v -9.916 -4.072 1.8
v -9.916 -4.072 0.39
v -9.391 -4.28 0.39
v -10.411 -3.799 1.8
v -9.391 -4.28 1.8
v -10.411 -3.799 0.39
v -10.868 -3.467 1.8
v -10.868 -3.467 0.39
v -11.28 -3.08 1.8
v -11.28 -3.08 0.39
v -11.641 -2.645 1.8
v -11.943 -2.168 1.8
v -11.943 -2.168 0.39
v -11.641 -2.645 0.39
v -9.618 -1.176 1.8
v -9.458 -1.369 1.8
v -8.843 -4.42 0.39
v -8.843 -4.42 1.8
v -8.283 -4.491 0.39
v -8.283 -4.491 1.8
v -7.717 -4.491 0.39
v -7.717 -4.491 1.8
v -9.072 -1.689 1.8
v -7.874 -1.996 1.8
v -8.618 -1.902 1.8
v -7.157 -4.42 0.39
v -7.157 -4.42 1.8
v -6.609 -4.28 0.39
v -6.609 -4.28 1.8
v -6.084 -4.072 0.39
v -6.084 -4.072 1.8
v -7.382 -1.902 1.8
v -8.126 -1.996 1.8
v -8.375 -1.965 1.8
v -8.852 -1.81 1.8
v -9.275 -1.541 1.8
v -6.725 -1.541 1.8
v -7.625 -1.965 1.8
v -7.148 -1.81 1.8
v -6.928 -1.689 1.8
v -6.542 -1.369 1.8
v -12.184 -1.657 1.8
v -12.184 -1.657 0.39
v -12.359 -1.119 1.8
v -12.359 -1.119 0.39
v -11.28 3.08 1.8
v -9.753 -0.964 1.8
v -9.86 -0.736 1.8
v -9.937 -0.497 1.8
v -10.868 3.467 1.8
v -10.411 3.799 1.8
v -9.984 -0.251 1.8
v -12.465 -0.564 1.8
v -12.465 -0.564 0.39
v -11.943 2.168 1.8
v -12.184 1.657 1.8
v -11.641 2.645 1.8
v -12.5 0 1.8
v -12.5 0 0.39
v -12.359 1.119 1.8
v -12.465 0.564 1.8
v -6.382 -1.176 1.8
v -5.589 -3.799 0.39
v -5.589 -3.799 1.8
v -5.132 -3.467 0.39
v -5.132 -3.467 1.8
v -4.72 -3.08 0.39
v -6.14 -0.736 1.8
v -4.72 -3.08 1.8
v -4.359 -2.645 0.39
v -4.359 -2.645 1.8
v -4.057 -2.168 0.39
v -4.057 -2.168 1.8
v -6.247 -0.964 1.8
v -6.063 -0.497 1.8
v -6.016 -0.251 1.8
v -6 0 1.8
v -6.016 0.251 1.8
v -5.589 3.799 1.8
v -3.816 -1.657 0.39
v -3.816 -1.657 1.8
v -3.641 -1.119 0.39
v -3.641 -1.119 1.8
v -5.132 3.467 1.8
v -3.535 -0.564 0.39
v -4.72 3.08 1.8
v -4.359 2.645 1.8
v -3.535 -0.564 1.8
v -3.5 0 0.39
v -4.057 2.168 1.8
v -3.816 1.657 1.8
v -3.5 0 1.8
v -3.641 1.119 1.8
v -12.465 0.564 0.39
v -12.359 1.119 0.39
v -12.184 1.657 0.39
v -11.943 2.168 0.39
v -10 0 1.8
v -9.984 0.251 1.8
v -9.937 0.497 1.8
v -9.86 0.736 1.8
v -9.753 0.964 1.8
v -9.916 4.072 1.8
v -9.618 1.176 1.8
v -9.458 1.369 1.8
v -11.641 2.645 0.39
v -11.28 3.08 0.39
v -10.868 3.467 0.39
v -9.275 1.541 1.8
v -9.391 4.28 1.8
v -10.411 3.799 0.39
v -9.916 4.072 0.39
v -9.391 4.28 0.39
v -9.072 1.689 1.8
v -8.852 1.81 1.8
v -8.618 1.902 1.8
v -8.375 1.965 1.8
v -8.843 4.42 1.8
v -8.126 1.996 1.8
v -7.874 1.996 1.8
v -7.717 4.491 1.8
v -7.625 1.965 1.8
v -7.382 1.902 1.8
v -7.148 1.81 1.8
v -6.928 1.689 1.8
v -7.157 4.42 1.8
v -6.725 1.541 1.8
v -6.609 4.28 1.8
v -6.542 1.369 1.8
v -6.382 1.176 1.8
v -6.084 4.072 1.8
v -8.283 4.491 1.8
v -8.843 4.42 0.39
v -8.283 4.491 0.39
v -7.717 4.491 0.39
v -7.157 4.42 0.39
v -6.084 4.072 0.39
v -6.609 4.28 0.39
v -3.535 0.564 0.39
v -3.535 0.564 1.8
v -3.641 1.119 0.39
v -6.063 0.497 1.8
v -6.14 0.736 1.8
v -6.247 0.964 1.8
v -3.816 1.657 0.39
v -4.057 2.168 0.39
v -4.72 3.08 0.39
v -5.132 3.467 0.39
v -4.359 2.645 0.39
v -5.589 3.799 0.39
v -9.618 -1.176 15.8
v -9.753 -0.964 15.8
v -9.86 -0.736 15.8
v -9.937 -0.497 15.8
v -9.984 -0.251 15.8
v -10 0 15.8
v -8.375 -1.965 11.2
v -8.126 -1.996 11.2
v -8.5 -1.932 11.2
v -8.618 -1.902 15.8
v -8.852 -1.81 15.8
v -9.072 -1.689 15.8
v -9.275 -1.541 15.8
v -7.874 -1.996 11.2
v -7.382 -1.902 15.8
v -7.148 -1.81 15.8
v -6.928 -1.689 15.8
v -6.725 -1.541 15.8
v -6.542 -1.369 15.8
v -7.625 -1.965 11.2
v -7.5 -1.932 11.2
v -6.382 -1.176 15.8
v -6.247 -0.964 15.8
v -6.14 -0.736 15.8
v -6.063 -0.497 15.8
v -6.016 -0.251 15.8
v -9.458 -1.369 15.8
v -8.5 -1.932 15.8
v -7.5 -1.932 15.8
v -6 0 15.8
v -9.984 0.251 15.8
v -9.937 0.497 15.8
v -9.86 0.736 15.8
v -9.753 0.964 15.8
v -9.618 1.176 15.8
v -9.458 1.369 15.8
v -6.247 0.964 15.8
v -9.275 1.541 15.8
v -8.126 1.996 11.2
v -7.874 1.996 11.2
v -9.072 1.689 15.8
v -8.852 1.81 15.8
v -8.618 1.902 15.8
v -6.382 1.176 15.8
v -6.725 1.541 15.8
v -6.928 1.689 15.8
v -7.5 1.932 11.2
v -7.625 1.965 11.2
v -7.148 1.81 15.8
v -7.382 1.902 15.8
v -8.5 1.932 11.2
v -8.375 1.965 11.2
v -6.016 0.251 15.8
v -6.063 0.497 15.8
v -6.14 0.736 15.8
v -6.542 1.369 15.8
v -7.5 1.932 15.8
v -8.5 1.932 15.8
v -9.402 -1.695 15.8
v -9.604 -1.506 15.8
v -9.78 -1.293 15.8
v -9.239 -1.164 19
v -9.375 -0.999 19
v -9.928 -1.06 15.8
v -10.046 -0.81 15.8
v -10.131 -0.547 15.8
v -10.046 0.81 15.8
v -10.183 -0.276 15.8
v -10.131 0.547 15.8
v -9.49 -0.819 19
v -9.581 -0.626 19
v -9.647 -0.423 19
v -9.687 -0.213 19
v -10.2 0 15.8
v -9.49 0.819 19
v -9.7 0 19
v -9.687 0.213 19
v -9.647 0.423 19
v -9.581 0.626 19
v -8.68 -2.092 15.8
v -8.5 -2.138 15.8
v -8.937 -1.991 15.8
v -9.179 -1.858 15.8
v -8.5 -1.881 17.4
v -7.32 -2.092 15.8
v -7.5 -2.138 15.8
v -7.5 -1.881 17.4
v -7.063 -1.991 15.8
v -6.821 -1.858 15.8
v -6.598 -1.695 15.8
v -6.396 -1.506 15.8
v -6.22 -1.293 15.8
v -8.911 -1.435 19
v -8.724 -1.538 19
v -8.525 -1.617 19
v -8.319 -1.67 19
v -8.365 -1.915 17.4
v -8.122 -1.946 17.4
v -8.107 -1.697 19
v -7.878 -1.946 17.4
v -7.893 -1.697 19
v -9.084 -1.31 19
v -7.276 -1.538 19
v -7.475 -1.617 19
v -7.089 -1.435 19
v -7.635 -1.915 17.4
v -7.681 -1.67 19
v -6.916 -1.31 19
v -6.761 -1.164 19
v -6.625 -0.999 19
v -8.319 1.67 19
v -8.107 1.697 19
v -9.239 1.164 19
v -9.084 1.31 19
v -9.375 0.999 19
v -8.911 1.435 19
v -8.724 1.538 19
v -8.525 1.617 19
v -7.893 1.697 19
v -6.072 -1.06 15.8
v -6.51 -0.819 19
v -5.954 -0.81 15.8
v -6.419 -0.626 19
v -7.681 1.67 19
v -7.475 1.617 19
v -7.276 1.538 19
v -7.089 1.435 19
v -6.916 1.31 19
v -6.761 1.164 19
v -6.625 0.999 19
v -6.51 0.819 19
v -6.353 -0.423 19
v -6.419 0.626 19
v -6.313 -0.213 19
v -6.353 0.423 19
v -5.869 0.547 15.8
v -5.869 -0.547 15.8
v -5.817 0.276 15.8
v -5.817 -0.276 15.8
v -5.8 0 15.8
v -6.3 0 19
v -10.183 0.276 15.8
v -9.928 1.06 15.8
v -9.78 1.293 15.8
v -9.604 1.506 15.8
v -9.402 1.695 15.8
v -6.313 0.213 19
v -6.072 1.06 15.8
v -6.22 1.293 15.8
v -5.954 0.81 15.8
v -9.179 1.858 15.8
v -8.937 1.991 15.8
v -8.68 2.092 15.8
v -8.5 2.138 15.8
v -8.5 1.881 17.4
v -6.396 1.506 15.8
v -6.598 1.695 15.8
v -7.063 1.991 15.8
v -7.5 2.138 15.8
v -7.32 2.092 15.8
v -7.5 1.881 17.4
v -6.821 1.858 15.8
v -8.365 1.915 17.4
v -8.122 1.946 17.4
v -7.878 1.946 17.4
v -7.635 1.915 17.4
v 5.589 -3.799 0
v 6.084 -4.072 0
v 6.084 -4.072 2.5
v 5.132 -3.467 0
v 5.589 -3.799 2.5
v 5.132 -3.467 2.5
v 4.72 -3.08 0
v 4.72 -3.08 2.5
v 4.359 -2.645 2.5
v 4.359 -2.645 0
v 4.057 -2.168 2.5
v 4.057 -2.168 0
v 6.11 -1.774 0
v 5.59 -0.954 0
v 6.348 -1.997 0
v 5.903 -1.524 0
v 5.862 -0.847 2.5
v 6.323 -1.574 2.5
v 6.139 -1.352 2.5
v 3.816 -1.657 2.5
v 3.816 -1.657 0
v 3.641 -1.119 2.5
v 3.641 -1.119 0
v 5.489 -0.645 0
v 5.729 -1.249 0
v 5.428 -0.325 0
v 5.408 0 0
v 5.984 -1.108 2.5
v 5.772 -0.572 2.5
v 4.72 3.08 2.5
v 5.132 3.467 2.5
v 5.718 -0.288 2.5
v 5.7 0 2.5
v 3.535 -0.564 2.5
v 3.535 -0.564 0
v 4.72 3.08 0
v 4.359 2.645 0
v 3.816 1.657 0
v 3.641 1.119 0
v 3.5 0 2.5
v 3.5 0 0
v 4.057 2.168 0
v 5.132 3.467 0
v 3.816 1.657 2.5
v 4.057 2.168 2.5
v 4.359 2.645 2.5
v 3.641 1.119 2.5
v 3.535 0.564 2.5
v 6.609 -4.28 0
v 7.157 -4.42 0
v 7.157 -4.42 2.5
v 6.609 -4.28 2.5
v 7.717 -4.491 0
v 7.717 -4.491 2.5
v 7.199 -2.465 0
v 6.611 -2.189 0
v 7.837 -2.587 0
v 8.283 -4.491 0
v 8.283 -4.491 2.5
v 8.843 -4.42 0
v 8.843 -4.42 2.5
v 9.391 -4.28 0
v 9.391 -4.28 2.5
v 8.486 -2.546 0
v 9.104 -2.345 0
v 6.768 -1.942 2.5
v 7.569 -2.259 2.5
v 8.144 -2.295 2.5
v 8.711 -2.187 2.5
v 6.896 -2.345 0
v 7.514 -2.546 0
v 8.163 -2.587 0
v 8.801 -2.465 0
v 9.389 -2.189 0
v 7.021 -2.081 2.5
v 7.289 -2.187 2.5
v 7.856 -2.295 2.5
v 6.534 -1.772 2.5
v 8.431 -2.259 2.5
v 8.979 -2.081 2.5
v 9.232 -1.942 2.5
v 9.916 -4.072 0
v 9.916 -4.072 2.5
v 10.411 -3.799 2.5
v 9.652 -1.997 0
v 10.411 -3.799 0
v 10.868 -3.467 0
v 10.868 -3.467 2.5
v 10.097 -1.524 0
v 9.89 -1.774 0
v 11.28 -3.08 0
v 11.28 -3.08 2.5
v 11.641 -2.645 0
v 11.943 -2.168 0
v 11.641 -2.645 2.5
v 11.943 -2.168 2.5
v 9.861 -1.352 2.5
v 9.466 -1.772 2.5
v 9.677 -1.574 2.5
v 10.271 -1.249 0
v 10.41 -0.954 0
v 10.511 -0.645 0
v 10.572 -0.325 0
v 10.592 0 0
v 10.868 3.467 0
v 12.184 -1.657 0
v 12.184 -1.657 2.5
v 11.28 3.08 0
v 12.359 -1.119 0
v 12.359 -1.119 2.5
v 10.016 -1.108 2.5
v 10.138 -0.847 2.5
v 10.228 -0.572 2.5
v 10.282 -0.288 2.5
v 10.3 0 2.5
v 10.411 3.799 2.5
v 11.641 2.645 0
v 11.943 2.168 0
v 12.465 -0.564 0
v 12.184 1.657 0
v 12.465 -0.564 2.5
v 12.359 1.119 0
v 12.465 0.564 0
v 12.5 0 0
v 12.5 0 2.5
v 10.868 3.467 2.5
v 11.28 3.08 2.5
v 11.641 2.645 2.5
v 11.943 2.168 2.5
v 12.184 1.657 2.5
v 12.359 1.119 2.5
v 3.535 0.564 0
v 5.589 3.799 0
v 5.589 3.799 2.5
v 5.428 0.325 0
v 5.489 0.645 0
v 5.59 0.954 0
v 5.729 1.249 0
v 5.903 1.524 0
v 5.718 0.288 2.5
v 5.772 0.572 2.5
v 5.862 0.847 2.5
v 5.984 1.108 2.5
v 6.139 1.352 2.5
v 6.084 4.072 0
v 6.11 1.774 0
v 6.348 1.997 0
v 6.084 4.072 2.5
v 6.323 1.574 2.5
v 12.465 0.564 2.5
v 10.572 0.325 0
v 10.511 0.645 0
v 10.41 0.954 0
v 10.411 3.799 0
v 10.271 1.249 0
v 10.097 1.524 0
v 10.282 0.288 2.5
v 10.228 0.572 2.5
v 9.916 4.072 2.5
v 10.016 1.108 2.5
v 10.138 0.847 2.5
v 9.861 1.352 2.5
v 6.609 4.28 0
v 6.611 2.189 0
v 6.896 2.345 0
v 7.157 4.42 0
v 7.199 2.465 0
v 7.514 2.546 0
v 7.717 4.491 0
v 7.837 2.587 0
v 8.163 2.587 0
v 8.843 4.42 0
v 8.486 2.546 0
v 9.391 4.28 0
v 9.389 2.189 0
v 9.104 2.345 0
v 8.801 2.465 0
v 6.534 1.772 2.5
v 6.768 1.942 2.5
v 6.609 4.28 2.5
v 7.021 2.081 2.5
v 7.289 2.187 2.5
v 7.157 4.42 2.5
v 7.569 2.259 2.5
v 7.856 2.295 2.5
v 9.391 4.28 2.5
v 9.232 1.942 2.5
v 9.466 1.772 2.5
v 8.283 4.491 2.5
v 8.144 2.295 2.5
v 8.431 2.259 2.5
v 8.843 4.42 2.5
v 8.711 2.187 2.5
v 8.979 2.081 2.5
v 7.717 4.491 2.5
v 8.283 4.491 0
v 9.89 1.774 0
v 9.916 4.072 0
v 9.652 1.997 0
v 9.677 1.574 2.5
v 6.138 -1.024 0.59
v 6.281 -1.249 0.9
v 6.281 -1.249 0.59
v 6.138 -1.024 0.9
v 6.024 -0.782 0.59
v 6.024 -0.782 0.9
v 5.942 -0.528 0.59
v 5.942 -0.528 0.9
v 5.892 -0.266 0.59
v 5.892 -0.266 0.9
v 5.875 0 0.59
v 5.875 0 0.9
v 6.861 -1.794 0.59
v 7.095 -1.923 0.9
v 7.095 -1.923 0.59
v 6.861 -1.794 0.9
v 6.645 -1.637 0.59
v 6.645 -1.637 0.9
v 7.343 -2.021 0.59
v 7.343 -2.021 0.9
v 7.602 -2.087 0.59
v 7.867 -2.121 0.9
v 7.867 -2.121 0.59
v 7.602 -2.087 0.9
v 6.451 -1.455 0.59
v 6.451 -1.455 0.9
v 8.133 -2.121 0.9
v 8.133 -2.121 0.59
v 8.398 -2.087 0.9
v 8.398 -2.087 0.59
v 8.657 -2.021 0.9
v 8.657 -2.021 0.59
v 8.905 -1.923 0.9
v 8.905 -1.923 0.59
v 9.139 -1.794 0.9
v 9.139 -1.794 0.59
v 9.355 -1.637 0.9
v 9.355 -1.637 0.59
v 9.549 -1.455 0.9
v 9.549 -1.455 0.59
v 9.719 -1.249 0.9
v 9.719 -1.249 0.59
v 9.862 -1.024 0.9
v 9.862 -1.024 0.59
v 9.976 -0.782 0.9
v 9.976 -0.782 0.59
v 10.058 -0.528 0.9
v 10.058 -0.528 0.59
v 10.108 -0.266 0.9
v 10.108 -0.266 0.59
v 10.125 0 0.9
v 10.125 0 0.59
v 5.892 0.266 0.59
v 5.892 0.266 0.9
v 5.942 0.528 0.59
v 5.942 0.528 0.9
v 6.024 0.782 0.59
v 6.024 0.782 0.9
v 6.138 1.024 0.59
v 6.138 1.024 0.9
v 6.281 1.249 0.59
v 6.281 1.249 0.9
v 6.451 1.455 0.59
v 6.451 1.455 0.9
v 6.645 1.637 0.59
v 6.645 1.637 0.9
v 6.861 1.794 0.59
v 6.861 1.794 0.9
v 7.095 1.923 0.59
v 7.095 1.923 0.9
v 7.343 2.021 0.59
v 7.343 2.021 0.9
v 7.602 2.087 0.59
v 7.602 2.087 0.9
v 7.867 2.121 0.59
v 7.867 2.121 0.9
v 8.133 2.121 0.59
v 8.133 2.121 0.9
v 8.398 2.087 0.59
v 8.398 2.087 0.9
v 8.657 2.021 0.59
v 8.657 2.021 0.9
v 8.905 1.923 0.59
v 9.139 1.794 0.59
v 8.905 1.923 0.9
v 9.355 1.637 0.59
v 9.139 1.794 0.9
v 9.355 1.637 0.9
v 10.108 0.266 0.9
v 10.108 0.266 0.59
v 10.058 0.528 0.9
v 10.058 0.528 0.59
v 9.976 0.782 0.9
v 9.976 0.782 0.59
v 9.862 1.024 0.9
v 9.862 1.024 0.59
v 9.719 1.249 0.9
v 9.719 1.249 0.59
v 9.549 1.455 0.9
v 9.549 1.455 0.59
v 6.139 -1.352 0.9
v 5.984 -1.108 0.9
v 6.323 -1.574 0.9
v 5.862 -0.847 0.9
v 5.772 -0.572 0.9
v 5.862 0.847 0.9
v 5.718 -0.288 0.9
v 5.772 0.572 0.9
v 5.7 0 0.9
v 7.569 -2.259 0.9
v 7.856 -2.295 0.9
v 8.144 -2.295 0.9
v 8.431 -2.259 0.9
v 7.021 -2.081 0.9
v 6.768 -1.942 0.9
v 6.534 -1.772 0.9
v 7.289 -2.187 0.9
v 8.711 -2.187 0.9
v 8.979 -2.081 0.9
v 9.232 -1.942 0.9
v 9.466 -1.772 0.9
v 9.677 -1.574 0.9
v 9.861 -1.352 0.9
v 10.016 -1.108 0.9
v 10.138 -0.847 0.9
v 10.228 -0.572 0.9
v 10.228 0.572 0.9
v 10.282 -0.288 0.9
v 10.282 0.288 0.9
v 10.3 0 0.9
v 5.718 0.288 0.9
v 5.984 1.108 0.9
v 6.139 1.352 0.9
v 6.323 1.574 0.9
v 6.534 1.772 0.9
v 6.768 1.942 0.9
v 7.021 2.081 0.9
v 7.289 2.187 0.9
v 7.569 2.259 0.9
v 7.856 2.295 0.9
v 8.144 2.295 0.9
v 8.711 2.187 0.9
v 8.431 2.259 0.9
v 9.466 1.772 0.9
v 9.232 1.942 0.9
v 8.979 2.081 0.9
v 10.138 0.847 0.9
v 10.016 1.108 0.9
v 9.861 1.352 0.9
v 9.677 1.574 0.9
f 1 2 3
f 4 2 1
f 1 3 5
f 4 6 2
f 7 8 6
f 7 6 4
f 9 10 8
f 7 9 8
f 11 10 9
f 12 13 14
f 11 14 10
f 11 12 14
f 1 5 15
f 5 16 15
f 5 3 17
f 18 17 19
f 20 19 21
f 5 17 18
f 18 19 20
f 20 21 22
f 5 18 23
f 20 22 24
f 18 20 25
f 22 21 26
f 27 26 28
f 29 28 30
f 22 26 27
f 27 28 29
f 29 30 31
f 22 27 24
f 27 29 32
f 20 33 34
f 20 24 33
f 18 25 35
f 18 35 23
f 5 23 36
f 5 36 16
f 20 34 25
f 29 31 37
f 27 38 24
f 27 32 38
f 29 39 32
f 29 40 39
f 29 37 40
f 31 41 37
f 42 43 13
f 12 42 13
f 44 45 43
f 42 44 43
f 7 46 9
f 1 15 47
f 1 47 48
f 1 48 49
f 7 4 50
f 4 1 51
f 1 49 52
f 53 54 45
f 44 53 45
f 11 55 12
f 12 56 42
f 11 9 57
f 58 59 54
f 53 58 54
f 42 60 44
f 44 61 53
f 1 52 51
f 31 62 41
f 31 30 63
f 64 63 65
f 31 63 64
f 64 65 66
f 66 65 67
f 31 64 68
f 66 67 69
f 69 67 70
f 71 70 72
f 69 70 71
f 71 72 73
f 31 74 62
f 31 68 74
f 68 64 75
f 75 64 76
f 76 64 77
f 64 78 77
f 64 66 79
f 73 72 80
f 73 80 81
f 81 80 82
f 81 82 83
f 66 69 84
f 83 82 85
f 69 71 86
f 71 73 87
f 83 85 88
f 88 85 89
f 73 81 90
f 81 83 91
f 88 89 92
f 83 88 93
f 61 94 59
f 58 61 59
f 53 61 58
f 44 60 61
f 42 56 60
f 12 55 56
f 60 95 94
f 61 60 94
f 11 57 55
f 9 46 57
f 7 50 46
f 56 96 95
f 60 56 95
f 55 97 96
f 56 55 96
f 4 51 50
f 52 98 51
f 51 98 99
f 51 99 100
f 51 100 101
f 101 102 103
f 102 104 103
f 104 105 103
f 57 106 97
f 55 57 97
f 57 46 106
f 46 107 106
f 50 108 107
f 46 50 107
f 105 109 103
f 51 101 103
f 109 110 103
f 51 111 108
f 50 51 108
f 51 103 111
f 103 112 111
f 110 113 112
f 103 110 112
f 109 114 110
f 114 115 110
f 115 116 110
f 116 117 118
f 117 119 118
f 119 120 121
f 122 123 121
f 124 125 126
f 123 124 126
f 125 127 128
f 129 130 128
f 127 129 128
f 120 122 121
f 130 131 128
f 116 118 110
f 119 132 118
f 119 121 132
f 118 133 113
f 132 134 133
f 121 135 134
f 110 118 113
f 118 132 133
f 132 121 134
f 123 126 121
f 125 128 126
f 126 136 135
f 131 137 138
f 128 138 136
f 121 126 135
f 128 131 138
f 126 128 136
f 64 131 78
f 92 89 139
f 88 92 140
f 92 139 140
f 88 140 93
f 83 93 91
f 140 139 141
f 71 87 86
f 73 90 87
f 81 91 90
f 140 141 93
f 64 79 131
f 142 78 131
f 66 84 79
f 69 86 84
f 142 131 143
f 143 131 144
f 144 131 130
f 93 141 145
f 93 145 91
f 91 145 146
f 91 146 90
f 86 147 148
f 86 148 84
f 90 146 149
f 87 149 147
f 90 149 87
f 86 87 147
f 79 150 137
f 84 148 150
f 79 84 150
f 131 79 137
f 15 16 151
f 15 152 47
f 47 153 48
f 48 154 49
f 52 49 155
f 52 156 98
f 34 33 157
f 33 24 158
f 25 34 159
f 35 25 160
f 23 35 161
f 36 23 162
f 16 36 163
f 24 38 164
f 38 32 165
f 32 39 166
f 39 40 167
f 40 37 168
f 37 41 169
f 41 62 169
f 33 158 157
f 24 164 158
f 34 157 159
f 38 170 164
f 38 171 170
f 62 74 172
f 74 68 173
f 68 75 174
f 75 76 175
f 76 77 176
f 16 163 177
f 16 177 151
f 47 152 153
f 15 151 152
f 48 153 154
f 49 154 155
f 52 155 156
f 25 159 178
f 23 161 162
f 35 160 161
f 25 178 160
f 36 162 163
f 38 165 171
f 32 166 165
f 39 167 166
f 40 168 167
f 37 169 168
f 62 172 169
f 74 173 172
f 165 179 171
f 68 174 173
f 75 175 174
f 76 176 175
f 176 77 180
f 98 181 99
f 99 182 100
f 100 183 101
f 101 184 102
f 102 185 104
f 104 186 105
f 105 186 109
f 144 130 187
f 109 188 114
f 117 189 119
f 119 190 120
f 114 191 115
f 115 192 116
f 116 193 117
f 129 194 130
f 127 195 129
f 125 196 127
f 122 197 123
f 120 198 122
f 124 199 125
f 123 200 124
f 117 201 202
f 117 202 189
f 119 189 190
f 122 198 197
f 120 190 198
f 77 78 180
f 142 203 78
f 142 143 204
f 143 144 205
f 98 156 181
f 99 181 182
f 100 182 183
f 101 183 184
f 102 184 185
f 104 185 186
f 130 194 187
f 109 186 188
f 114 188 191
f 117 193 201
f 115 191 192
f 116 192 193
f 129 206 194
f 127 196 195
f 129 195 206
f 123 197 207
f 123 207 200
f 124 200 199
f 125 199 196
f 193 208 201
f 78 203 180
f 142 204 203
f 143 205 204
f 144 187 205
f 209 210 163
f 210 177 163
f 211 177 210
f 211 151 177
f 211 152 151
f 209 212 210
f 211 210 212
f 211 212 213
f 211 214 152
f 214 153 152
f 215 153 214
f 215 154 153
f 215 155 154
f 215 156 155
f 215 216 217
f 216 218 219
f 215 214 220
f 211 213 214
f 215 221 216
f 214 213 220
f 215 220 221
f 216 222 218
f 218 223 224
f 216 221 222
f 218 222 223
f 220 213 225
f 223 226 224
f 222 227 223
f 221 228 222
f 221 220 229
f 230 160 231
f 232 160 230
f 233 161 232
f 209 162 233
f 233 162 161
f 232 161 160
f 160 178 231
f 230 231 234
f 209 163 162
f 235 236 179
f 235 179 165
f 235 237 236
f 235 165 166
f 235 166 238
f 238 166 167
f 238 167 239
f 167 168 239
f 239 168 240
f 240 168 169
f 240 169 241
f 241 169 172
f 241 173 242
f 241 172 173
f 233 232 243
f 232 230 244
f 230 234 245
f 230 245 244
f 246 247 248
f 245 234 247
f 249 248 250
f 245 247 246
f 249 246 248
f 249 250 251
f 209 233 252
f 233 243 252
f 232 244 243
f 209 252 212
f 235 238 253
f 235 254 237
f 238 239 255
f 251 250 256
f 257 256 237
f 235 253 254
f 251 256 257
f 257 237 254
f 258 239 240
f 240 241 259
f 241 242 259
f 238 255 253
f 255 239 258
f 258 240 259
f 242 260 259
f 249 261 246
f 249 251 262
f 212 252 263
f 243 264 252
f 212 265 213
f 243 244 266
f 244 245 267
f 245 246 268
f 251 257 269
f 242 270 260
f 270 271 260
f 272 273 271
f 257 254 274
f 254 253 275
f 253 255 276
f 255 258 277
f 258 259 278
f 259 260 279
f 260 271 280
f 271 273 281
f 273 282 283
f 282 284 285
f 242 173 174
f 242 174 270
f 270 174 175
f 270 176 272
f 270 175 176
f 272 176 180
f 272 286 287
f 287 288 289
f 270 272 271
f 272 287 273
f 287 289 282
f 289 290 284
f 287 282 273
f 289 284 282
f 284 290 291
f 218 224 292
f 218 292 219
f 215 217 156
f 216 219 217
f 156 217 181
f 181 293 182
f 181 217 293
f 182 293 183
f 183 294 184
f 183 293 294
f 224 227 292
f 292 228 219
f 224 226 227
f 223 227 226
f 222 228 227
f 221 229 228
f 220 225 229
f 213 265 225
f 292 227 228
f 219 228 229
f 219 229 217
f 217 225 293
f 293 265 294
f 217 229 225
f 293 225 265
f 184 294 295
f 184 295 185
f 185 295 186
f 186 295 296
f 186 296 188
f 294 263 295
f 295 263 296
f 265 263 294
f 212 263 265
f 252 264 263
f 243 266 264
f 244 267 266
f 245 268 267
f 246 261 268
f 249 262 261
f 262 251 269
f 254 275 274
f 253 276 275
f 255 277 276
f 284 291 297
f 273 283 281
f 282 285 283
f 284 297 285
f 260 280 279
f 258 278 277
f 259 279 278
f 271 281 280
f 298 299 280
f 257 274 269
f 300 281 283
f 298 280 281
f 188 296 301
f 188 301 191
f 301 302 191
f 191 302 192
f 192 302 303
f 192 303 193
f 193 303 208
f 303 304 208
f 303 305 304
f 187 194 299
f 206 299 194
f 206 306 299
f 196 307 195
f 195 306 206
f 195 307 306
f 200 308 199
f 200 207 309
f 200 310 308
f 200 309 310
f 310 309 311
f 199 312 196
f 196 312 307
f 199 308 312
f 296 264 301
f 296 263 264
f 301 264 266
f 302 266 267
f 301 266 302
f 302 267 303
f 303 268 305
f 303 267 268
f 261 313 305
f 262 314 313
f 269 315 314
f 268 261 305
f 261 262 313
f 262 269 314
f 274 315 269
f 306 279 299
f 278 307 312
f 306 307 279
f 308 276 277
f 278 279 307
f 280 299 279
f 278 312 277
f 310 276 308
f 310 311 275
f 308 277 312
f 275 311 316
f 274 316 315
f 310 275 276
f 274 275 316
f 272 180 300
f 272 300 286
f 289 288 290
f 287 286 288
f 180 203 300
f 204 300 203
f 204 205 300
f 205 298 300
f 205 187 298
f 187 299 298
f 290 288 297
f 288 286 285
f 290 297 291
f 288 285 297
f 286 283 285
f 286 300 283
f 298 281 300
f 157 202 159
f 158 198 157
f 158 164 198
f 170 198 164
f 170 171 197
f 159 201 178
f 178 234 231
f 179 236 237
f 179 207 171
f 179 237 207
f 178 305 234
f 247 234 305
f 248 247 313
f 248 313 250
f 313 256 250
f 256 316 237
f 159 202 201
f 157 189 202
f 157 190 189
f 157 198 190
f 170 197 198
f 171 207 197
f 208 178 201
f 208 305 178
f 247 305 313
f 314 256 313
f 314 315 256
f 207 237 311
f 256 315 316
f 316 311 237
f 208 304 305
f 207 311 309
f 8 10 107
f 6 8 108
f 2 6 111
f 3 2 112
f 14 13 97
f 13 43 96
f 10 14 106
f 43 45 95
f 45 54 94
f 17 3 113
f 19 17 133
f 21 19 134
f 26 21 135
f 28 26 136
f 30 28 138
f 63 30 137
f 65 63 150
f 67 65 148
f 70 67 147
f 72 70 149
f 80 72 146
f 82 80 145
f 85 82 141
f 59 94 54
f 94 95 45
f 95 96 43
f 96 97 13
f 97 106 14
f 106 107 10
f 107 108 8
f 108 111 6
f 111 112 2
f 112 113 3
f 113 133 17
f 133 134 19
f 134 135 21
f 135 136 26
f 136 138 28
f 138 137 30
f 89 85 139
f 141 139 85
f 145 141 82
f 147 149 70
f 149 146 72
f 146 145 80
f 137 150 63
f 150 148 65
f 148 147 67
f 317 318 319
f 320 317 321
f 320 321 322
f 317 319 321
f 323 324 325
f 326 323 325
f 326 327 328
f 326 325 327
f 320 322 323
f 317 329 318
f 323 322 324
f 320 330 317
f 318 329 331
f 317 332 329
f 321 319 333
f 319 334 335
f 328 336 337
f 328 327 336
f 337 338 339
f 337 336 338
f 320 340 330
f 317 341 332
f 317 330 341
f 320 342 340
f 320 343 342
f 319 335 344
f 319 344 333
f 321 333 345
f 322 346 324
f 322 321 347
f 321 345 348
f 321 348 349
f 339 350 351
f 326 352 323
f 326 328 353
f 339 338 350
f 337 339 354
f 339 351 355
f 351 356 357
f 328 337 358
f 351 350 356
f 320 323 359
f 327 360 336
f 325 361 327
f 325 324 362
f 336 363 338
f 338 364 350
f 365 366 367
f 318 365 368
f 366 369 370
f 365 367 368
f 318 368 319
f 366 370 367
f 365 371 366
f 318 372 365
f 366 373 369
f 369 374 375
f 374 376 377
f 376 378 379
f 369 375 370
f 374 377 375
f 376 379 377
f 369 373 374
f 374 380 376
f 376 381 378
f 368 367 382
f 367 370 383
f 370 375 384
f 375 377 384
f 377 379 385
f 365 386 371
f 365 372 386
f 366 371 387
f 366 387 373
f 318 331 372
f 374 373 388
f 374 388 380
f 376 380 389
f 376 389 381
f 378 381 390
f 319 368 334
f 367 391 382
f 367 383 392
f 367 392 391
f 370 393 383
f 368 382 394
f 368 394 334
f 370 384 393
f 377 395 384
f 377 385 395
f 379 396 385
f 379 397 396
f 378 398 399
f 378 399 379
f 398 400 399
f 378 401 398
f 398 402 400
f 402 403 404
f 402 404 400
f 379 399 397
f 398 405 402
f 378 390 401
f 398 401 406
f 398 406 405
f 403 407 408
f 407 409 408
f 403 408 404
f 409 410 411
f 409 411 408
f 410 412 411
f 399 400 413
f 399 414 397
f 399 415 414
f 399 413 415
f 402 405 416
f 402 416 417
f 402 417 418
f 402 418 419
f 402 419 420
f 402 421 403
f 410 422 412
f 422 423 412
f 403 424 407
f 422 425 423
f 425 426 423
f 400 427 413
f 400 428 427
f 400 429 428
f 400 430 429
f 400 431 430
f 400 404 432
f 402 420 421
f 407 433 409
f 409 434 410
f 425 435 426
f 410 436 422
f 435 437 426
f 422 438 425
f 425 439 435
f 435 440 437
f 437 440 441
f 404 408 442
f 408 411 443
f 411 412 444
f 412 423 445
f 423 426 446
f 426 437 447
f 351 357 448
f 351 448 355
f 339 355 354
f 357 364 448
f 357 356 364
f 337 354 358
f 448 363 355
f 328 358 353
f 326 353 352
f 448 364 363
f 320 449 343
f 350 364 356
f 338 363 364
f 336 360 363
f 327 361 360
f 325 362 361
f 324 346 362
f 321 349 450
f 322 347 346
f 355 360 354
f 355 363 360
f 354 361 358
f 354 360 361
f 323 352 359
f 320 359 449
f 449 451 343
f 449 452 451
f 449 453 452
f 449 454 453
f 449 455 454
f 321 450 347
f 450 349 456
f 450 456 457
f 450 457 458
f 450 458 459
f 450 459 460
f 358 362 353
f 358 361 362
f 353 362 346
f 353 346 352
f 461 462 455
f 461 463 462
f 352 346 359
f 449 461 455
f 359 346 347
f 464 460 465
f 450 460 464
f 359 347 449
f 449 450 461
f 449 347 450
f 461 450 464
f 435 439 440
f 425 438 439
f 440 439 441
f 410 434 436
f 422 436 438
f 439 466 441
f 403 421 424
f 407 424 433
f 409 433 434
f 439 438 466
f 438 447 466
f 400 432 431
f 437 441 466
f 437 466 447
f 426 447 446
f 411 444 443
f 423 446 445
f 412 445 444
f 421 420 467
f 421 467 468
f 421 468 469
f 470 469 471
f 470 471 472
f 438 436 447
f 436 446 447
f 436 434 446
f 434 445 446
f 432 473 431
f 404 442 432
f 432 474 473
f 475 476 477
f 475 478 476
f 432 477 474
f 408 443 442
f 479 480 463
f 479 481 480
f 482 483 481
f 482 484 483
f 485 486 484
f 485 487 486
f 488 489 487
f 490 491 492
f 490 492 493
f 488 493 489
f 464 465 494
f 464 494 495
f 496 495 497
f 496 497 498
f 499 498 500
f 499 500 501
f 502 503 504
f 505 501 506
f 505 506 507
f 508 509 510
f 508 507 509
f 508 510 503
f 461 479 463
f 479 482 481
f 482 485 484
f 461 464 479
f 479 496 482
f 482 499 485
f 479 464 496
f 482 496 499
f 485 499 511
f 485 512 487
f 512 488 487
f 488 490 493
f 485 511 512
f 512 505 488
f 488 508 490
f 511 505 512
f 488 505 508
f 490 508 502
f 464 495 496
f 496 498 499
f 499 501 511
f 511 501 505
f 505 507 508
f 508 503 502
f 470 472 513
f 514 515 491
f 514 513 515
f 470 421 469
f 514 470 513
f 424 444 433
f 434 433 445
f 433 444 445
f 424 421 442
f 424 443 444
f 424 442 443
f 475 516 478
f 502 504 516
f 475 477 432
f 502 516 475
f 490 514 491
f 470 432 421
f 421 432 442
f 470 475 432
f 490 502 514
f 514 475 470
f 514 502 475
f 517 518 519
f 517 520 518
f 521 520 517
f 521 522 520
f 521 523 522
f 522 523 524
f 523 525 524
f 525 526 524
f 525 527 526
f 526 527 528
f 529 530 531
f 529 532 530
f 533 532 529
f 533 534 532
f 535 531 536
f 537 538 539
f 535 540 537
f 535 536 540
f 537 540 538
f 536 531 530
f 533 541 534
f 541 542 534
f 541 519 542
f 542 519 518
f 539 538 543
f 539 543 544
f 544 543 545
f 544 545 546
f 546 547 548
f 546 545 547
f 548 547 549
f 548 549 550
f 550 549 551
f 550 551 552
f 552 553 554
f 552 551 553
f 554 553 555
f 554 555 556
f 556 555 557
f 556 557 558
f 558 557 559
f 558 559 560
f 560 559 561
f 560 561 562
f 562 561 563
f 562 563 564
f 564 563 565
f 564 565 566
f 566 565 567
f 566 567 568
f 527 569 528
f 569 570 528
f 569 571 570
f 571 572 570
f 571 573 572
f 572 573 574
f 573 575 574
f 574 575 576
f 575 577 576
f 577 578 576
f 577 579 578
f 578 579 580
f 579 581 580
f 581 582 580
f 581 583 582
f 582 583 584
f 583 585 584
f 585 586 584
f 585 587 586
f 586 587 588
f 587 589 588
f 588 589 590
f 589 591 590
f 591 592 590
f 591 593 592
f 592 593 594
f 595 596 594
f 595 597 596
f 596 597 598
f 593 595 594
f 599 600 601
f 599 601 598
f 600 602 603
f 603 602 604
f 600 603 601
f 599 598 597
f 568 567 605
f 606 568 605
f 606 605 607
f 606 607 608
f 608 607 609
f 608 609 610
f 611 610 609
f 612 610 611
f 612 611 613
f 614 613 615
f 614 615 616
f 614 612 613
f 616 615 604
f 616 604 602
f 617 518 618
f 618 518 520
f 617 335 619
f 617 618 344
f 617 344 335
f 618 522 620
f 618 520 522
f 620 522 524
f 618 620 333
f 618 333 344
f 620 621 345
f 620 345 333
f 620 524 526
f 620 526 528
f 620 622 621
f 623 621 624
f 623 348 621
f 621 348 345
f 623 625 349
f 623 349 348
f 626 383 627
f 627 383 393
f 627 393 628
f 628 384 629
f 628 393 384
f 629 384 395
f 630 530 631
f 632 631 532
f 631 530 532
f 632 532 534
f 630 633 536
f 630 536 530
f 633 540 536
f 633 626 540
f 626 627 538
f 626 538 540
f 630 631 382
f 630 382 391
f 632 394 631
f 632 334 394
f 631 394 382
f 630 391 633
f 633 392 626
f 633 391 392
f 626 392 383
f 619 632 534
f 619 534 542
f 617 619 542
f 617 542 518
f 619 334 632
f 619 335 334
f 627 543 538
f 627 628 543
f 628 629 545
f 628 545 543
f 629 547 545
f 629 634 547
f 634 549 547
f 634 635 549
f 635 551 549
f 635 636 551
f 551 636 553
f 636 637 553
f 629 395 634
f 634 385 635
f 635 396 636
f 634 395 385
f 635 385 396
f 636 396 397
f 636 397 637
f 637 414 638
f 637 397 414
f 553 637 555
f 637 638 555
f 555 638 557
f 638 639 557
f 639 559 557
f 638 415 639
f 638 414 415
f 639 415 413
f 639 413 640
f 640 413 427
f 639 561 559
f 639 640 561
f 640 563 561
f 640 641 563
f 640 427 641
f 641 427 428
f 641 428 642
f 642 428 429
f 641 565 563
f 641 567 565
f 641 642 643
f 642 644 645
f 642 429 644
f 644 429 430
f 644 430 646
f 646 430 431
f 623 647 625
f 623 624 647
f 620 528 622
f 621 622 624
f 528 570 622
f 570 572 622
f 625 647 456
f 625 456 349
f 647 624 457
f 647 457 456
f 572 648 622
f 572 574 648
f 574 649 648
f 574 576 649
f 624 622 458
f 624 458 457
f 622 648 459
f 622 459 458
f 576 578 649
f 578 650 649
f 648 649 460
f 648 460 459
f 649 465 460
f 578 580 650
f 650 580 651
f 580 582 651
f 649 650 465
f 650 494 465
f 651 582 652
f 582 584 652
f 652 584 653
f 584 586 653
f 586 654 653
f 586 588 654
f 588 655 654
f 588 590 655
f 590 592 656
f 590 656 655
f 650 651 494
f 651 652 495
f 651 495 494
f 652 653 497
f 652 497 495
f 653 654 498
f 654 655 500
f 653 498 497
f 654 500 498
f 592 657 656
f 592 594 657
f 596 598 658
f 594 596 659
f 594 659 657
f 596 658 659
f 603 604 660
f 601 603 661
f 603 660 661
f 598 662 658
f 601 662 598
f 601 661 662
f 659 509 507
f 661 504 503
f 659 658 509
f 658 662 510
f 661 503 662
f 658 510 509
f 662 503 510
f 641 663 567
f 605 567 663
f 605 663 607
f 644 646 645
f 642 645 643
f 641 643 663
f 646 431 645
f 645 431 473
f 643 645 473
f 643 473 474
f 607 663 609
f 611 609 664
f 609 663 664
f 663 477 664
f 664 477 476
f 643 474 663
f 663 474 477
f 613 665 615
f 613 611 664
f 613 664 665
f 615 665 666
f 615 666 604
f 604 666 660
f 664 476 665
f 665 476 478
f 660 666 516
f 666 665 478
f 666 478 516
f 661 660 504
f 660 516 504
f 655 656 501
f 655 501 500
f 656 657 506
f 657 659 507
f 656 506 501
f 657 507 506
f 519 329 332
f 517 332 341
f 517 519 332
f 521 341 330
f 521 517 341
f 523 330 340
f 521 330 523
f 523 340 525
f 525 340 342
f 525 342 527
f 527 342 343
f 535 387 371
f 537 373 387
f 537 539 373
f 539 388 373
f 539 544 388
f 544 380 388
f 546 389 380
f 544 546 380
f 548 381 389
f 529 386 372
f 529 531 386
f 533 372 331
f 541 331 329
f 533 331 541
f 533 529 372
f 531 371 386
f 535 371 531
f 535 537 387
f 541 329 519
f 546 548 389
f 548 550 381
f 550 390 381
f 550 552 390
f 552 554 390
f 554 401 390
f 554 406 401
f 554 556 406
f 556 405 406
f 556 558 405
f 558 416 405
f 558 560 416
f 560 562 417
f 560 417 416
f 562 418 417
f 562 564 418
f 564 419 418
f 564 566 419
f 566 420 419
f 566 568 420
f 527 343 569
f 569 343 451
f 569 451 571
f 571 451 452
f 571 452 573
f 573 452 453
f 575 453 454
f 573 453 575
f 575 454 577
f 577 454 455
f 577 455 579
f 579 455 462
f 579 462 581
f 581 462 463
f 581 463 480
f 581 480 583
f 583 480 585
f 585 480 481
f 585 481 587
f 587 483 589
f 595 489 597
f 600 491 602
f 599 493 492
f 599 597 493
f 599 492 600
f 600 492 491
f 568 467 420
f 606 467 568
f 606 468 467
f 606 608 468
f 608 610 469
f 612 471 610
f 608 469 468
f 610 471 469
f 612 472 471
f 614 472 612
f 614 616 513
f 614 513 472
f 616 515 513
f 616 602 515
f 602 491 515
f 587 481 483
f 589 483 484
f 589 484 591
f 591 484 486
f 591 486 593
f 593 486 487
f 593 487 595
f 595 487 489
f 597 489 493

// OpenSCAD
// ====================================================================
// [PRINT 08-B] Precision Axle Pin & Retaining End Cap Set (Flush Fit)
//
// Engineering Specifications:
// - Matched to Station A Clevis Total Outer Width (14.0mm).
// - Shaft: 4.0mm diameter x 14.0mm exact length (0.0mm extra protrusion!).
// - Cap: 9.0mm disk with internal 4.6mm snap shoulder for 4.4mm barb tip.
// ====================================================================

$fn = 50;

pin_shaft_d  = 4.0;   // 4.0mm rod shaft
pin_length   = 14.0;  // EXACT 14.0mm shaft length
head_d       = 9.0;   // Flat head disk diameter
head_th      = 1.8;   // Flat head thickness
tip_barb_d   = 4.4;   // Barb tip diameter
tip_length   = 3.2;   // Tip length
cap_th       = 2.5;   // Cap disk thickness

module precision_axle_pin() {
    difference() {
        union() {
            cylinder(d = head_d, h = head_th);
            translate([0, 0, head_th])
                cylinder(d = pin_shaft_d, h = pin_length);
            translate([0, 0, head_th + pin_length])
                cylinder(d1 = tip_barb_d, d2 = pin_shaft_d - 0.6, h = tip_length);
        }

        translate([0, 0, head_th + pin_length - 1.5])
            cube([1.0, tip_barb_d + 2.0, tip_length + 3.0], center = true);

        translate([0, 0, -0.01])
            cylinder(d1 = head_d + 1.0, d2 = head_d, h = 0.4);
    }
}

module precision_retaining_end_cap() {
    difference() {
        union() {
            cylinder(d = head_d, h = cap_th);
        }

        translate([0, 0, -0.5])
            cylinder(d = pin_shaft_d + 0.25, h = 1.5);

        translate([0, 0, 0.9])
            cylinder(d = 4.6, h = 2.0);

        translate([0, 0, -0.01])
            cylinder(d1 = pin_shaft_d + 1.2, d2 = pin_shaft_d + 0.25, h = 0.6);
    }
}

// Layout on Print Bed (Spaced side-by-side at Z = 0)
translate([-8.0, 0, 0])
    precision_axle_pin();

translate([8.0, 0, 0])
    precision_retaining_end_cap();
